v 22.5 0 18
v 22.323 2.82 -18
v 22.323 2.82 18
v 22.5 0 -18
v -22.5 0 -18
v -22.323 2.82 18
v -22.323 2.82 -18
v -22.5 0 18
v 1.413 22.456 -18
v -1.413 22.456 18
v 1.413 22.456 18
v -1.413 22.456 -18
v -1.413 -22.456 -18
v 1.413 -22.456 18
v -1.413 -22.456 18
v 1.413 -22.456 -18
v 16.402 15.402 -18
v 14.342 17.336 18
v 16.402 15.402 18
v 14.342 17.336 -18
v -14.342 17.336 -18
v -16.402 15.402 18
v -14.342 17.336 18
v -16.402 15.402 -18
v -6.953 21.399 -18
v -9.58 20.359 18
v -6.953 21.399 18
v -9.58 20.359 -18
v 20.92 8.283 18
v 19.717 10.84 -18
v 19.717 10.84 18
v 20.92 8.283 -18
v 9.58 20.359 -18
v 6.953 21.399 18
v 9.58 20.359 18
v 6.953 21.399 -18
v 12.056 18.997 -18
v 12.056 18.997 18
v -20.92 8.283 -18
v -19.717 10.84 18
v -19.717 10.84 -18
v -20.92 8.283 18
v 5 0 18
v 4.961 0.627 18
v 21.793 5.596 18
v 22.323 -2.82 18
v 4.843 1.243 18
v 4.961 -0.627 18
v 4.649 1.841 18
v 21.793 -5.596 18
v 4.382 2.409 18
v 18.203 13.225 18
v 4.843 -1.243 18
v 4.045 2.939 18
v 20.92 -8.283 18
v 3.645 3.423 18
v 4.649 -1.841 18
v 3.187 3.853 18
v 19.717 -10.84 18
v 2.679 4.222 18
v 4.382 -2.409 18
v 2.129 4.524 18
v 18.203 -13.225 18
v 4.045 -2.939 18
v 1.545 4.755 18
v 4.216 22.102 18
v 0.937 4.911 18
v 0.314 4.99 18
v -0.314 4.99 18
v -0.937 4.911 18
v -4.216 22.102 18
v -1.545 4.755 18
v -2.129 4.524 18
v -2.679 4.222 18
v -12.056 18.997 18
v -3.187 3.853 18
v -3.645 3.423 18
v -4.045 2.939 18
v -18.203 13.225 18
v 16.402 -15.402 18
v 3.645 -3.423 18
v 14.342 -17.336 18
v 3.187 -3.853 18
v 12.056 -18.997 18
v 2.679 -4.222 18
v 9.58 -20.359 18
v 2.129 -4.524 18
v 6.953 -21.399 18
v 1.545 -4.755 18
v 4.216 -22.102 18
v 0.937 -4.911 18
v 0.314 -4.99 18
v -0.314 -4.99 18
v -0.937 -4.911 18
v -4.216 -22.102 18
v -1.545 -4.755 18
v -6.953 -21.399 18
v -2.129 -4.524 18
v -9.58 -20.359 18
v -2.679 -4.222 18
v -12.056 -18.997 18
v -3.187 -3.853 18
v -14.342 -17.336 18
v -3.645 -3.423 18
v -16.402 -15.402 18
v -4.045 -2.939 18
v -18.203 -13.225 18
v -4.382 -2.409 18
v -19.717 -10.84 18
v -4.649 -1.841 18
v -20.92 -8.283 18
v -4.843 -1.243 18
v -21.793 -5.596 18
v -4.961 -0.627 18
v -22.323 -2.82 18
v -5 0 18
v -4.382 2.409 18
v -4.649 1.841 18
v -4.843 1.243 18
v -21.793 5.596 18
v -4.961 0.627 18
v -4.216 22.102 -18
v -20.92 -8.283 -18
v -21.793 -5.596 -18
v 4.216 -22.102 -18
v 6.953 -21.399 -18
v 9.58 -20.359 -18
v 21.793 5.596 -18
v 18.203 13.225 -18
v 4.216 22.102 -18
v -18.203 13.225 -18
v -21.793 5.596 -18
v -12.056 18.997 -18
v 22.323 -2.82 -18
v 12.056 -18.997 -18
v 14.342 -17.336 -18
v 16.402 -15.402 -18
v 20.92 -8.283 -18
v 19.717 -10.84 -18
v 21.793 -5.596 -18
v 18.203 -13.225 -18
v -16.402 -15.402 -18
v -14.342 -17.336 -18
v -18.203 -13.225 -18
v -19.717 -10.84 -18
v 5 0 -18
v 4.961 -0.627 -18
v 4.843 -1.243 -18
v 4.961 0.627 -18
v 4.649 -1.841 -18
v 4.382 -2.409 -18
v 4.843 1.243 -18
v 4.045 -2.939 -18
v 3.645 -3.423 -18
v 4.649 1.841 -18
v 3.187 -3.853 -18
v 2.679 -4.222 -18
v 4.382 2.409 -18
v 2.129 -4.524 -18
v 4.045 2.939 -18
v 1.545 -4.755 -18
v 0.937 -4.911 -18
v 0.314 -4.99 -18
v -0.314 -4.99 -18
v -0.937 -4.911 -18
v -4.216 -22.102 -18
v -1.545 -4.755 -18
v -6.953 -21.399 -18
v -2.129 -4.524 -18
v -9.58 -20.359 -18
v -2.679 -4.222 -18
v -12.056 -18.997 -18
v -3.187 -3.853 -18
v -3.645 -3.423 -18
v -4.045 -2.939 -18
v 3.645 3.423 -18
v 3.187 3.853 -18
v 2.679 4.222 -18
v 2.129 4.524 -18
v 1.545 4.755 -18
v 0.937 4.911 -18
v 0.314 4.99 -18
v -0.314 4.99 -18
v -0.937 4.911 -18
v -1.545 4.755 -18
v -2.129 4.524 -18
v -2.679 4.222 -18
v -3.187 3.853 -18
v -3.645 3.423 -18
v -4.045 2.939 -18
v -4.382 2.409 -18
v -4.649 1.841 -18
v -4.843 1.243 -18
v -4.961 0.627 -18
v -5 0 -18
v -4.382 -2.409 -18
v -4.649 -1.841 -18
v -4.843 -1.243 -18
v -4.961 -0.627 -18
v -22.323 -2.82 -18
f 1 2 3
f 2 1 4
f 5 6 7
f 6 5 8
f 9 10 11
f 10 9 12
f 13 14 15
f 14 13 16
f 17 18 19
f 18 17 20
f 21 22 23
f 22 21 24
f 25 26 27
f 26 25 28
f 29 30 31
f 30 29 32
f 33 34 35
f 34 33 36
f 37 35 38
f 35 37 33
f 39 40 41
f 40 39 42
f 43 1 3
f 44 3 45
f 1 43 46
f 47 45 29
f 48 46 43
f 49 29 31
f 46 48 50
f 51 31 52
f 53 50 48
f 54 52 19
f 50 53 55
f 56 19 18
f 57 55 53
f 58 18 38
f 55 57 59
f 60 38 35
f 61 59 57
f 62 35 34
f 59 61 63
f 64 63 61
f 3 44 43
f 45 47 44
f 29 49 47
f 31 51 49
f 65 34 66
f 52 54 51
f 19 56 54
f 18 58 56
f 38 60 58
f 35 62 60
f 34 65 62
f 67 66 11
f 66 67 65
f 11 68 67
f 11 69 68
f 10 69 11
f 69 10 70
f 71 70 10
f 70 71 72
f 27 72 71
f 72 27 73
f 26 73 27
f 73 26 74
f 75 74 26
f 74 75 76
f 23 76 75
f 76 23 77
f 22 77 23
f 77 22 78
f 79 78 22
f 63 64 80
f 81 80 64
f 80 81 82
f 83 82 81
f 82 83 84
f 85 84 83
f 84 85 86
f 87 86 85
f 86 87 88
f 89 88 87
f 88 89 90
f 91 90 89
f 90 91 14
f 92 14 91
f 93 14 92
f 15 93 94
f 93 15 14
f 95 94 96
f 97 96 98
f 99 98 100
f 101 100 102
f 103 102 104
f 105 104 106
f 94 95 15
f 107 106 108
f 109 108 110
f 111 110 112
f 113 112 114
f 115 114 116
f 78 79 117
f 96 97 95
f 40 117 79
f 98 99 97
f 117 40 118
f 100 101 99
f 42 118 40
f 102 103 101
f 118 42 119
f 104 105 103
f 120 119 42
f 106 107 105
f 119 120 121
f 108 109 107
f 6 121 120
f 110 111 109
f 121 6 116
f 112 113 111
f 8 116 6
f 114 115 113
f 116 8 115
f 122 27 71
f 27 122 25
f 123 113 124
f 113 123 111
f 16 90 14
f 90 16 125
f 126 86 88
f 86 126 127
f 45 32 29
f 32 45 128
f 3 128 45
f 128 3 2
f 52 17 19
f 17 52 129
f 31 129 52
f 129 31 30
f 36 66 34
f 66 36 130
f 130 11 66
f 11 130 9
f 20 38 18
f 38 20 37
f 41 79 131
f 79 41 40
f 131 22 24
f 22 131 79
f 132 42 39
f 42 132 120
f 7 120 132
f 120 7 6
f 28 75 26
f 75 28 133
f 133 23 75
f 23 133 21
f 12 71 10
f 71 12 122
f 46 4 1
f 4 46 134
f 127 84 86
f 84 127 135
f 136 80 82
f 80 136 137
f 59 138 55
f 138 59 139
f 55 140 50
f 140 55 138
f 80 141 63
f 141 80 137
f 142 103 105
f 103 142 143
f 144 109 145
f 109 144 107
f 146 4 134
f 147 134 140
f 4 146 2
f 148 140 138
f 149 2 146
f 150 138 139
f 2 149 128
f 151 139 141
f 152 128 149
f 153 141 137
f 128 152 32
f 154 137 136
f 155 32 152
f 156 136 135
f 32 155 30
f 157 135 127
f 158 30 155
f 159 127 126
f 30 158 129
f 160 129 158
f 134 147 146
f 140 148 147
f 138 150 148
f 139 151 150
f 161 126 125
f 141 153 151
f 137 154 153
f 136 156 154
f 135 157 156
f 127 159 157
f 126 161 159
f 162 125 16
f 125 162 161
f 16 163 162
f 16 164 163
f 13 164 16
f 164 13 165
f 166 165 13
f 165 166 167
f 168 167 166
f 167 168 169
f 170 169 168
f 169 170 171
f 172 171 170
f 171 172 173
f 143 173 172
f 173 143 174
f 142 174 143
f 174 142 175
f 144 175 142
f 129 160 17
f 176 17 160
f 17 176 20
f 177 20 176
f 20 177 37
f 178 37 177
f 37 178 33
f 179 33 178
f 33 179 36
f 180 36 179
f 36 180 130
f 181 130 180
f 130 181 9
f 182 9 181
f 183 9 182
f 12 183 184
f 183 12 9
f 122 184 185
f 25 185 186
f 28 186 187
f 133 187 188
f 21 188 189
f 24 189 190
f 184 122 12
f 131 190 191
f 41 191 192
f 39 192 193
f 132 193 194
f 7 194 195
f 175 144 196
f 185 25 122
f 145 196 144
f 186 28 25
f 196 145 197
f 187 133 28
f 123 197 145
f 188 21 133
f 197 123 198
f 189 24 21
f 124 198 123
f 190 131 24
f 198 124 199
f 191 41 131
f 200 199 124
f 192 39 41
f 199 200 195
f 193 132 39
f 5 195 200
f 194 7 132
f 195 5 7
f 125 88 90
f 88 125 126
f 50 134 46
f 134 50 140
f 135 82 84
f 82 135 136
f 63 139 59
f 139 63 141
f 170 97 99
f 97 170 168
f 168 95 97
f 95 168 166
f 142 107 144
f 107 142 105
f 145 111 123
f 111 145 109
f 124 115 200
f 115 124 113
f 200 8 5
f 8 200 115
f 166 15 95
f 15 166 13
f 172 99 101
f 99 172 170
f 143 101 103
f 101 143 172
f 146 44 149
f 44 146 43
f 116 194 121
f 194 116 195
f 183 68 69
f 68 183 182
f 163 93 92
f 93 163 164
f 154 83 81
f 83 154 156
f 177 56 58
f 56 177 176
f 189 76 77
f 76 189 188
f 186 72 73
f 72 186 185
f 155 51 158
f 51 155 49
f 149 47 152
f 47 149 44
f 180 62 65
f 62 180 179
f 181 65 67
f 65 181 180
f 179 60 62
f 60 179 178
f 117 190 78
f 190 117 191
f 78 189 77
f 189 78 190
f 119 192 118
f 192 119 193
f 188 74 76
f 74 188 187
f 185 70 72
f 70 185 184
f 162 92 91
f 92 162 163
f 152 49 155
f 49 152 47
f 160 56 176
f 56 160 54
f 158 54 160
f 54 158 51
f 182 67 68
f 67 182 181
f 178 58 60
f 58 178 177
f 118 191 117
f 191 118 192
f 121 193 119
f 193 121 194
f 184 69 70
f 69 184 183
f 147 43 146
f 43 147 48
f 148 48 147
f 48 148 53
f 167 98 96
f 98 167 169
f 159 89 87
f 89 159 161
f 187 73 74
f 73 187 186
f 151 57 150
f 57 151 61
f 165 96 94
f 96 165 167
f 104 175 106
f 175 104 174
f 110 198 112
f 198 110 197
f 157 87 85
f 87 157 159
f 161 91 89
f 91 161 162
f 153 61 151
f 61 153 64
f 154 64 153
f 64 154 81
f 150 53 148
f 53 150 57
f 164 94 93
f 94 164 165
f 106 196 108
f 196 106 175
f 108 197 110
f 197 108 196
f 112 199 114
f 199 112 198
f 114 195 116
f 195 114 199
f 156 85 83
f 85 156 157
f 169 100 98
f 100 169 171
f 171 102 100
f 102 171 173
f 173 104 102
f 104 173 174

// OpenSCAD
$fn = 50;


difference() {
	union() {
		translate(v = [0, 0, -18.0000000000]) {
			cylinder(h = 36, r = 22.5000000000);
		}
	}
	union() {
		translate(v = [0, 0, -100.0000000000]) {
			cylinder(h = 200, r = 5);
		}
	}
}
